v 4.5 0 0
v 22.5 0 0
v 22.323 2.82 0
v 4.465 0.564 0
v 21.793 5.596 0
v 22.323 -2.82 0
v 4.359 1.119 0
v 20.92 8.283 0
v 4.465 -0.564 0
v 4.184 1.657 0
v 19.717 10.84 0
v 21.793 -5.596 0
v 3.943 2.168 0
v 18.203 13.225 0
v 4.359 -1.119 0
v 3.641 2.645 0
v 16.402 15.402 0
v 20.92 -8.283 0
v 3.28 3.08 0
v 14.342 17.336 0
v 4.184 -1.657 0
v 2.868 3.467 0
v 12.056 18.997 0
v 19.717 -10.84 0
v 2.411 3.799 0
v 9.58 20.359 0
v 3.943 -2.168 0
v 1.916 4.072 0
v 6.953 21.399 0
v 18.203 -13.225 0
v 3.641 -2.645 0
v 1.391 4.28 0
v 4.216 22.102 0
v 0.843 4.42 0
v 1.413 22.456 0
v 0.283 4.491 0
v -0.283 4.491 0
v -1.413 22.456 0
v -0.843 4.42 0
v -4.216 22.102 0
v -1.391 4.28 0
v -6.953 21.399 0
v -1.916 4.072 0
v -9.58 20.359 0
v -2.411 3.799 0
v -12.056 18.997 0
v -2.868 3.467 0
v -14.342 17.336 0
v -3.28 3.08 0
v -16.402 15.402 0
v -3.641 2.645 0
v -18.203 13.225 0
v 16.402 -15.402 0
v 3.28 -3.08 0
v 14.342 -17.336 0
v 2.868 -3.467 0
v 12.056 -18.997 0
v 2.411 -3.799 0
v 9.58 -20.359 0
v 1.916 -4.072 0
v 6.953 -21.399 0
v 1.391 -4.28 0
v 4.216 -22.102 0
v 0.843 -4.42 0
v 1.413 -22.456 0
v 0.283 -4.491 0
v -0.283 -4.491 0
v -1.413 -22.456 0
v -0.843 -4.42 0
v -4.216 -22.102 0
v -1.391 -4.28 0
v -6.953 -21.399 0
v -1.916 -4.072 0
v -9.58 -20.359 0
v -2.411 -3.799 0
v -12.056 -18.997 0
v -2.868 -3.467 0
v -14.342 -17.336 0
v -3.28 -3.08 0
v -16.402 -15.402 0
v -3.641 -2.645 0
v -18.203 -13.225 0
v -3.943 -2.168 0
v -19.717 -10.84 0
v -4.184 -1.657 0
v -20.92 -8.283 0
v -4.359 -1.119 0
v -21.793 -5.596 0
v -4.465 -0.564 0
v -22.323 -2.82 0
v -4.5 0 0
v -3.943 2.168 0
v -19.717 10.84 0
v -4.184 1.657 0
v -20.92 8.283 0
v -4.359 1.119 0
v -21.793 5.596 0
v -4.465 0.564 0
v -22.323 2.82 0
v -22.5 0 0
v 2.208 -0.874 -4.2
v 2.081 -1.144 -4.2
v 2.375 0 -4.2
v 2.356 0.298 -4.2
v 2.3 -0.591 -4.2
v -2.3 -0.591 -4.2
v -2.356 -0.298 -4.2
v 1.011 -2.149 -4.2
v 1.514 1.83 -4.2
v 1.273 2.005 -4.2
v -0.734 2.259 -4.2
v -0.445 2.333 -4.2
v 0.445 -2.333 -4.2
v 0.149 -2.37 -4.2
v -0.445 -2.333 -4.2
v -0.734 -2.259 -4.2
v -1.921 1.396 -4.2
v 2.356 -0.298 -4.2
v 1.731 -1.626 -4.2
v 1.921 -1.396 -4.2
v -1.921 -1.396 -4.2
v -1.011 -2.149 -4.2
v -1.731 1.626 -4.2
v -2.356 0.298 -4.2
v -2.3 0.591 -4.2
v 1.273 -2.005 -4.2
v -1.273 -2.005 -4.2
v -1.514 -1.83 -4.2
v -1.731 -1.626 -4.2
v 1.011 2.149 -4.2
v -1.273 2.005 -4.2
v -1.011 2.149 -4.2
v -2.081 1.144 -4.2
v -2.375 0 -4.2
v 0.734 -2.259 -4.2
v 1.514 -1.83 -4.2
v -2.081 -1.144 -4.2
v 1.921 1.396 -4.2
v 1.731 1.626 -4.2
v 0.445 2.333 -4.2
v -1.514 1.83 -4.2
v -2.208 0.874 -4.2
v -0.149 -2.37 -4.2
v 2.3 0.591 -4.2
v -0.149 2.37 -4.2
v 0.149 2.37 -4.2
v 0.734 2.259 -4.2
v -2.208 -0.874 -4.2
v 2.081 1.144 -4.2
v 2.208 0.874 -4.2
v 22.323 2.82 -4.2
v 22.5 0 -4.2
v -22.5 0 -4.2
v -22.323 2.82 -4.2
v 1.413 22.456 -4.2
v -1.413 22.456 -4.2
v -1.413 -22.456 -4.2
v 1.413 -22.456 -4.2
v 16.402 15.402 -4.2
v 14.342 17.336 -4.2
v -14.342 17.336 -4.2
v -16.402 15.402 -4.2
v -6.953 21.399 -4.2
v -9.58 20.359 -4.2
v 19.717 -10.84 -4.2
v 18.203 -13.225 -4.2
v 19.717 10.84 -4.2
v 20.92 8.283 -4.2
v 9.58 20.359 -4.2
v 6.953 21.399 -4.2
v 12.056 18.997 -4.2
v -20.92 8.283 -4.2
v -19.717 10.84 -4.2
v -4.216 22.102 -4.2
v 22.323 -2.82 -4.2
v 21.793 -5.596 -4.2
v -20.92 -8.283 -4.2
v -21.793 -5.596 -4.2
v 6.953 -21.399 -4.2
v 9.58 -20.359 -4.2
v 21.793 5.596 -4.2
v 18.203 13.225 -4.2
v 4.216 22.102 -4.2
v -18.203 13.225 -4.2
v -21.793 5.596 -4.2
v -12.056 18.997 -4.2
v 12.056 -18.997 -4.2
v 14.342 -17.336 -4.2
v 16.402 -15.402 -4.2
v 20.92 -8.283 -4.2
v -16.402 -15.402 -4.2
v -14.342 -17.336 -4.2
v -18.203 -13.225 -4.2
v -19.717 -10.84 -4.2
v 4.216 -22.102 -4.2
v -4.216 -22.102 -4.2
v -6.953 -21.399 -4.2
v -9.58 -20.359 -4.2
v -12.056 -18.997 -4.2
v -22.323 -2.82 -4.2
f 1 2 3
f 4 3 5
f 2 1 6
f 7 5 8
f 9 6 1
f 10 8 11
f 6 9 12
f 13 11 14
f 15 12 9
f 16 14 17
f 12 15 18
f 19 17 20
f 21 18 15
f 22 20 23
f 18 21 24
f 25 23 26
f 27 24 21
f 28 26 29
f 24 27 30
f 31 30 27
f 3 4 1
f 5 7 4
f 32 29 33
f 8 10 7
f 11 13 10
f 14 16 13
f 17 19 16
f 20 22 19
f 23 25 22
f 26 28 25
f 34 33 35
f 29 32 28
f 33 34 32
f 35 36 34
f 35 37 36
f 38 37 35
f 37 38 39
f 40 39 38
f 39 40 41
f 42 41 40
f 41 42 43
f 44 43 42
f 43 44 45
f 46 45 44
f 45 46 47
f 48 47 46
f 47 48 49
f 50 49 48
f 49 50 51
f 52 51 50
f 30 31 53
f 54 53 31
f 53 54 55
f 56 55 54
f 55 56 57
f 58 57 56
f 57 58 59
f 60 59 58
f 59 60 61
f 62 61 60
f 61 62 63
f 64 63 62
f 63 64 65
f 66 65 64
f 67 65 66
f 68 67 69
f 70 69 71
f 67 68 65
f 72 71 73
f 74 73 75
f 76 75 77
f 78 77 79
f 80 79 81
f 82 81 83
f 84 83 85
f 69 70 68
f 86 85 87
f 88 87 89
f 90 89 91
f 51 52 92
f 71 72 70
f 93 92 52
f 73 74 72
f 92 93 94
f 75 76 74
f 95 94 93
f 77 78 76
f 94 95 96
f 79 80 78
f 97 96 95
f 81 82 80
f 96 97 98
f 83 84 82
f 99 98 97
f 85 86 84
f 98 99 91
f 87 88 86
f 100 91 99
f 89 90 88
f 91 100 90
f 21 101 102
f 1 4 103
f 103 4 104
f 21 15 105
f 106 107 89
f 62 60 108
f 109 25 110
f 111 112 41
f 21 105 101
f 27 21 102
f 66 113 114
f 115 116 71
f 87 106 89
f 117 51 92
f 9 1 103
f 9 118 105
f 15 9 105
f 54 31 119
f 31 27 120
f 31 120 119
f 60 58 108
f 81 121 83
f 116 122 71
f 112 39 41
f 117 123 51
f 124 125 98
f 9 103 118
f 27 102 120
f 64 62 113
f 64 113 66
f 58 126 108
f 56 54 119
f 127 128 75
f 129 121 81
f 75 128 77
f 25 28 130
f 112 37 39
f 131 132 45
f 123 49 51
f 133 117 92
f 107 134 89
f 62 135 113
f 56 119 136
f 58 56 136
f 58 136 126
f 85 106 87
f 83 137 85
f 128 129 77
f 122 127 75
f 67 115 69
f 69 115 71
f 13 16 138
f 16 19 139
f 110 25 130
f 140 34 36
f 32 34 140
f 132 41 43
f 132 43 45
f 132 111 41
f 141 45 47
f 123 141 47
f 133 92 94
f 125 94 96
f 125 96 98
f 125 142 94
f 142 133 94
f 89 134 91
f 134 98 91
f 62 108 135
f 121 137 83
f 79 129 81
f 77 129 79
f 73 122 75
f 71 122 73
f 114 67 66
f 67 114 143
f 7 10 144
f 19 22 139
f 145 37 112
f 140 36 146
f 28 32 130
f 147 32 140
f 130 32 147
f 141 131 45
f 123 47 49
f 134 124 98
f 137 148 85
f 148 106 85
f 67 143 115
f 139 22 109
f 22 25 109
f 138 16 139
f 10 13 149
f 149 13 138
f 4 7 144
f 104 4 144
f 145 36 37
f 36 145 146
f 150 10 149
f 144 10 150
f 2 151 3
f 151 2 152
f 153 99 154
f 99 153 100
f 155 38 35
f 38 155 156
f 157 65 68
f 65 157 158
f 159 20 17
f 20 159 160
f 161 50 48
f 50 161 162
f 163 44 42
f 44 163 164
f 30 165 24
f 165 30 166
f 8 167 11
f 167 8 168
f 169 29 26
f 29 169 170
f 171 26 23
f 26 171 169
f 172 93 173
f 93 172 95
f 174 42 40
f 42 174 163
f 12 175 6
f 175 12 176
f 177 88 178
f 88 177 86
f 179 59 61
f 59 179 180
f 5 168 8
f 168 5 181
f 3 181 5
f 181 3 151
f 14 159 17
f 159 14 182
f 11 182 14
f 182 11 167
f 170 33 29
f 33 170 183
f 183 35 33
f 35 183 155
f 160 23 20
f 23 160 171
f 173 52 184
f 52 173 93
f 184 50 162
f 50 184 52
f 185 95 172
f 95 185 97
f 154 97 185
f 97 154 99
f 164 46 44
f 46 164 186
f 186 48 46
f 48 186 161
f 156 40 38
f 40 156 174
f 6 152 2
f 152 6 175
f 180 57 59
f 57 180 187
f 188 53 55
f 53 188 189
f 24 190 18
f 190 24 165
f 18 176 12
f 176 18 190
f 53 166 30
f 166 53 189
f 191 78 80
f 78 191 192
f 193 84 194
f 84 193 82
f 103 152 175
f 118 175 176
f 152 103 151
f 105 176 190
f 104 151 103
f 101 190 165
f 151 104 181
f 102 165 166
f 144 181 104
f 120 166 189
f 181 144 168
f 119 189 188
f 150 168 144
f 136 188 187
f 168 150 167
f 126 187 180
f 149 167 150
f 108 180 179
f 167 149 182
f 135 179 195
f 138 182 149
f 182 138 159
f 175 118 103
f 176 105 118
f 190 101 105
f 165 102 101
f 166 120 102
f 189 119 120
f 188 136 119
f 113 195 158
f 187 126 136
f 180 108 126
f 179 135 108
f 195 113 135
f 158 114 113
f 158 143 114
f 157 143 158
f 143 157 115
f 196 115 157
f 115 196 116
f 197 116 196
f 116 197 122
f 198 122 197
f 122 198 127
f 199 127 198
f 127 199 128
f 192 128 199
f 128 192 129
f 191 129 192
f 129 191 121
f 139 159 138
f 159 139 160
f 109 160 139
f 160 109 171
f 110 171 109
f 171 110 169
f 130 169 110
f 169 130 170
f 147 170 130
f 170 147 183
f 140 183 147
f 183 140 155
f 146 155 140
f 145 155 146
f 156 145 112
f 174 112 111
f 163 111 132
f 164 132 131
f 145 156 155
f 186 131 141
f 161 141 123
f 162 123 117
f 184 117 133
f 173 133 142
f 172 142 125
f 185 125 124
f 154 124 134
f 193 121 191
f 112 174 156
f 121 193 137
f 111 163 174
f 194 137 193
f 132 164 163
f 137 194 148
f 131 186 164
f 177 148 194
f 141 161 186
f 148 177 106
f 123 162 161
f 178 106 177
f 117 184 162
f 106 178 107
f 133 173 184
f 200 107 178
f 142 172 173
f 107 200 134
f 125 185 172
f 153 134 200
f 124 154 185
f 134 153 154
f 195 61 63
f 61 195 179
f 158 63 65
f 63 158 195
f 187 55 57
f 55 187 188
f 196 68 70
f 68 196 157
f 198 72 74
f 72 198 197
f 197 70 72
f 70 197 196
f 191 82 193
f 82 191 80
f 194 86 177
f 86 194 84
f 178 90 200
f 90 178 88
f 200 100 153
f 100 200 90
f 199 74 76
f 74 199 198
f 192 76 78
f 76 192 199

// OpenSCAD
$fn = 50;

difference() {
	union() {
		translate(v = [0, 0, -4.2]) {
			cylinder(h = 4.2, r = 22.5);
		}
	}
	union() {
		translate(v = [0, 0, 0]) {
			rotate(a = [0, 0, 0]) {
				difference() {
					union() {
						translate(v = [0, 0, -7.2]) {
							cylinder(h = 7.2, r = 2.25);
						}
						translate(v = [0, 0, -4.2]) {
							cylinder(h = 4.2, r1 = 2.375, r2 = 4.5);
						}
						translate(v = [0, 0, -7.2]) {
							cylinder(h = 7.2, r = 2.375);
						}
						translate(v = [0, 0, -7.2]) {
							cylinder(h = 7.2, r = 2.25);
						}
					}
					union();
				}
			}
		}
	}
}
